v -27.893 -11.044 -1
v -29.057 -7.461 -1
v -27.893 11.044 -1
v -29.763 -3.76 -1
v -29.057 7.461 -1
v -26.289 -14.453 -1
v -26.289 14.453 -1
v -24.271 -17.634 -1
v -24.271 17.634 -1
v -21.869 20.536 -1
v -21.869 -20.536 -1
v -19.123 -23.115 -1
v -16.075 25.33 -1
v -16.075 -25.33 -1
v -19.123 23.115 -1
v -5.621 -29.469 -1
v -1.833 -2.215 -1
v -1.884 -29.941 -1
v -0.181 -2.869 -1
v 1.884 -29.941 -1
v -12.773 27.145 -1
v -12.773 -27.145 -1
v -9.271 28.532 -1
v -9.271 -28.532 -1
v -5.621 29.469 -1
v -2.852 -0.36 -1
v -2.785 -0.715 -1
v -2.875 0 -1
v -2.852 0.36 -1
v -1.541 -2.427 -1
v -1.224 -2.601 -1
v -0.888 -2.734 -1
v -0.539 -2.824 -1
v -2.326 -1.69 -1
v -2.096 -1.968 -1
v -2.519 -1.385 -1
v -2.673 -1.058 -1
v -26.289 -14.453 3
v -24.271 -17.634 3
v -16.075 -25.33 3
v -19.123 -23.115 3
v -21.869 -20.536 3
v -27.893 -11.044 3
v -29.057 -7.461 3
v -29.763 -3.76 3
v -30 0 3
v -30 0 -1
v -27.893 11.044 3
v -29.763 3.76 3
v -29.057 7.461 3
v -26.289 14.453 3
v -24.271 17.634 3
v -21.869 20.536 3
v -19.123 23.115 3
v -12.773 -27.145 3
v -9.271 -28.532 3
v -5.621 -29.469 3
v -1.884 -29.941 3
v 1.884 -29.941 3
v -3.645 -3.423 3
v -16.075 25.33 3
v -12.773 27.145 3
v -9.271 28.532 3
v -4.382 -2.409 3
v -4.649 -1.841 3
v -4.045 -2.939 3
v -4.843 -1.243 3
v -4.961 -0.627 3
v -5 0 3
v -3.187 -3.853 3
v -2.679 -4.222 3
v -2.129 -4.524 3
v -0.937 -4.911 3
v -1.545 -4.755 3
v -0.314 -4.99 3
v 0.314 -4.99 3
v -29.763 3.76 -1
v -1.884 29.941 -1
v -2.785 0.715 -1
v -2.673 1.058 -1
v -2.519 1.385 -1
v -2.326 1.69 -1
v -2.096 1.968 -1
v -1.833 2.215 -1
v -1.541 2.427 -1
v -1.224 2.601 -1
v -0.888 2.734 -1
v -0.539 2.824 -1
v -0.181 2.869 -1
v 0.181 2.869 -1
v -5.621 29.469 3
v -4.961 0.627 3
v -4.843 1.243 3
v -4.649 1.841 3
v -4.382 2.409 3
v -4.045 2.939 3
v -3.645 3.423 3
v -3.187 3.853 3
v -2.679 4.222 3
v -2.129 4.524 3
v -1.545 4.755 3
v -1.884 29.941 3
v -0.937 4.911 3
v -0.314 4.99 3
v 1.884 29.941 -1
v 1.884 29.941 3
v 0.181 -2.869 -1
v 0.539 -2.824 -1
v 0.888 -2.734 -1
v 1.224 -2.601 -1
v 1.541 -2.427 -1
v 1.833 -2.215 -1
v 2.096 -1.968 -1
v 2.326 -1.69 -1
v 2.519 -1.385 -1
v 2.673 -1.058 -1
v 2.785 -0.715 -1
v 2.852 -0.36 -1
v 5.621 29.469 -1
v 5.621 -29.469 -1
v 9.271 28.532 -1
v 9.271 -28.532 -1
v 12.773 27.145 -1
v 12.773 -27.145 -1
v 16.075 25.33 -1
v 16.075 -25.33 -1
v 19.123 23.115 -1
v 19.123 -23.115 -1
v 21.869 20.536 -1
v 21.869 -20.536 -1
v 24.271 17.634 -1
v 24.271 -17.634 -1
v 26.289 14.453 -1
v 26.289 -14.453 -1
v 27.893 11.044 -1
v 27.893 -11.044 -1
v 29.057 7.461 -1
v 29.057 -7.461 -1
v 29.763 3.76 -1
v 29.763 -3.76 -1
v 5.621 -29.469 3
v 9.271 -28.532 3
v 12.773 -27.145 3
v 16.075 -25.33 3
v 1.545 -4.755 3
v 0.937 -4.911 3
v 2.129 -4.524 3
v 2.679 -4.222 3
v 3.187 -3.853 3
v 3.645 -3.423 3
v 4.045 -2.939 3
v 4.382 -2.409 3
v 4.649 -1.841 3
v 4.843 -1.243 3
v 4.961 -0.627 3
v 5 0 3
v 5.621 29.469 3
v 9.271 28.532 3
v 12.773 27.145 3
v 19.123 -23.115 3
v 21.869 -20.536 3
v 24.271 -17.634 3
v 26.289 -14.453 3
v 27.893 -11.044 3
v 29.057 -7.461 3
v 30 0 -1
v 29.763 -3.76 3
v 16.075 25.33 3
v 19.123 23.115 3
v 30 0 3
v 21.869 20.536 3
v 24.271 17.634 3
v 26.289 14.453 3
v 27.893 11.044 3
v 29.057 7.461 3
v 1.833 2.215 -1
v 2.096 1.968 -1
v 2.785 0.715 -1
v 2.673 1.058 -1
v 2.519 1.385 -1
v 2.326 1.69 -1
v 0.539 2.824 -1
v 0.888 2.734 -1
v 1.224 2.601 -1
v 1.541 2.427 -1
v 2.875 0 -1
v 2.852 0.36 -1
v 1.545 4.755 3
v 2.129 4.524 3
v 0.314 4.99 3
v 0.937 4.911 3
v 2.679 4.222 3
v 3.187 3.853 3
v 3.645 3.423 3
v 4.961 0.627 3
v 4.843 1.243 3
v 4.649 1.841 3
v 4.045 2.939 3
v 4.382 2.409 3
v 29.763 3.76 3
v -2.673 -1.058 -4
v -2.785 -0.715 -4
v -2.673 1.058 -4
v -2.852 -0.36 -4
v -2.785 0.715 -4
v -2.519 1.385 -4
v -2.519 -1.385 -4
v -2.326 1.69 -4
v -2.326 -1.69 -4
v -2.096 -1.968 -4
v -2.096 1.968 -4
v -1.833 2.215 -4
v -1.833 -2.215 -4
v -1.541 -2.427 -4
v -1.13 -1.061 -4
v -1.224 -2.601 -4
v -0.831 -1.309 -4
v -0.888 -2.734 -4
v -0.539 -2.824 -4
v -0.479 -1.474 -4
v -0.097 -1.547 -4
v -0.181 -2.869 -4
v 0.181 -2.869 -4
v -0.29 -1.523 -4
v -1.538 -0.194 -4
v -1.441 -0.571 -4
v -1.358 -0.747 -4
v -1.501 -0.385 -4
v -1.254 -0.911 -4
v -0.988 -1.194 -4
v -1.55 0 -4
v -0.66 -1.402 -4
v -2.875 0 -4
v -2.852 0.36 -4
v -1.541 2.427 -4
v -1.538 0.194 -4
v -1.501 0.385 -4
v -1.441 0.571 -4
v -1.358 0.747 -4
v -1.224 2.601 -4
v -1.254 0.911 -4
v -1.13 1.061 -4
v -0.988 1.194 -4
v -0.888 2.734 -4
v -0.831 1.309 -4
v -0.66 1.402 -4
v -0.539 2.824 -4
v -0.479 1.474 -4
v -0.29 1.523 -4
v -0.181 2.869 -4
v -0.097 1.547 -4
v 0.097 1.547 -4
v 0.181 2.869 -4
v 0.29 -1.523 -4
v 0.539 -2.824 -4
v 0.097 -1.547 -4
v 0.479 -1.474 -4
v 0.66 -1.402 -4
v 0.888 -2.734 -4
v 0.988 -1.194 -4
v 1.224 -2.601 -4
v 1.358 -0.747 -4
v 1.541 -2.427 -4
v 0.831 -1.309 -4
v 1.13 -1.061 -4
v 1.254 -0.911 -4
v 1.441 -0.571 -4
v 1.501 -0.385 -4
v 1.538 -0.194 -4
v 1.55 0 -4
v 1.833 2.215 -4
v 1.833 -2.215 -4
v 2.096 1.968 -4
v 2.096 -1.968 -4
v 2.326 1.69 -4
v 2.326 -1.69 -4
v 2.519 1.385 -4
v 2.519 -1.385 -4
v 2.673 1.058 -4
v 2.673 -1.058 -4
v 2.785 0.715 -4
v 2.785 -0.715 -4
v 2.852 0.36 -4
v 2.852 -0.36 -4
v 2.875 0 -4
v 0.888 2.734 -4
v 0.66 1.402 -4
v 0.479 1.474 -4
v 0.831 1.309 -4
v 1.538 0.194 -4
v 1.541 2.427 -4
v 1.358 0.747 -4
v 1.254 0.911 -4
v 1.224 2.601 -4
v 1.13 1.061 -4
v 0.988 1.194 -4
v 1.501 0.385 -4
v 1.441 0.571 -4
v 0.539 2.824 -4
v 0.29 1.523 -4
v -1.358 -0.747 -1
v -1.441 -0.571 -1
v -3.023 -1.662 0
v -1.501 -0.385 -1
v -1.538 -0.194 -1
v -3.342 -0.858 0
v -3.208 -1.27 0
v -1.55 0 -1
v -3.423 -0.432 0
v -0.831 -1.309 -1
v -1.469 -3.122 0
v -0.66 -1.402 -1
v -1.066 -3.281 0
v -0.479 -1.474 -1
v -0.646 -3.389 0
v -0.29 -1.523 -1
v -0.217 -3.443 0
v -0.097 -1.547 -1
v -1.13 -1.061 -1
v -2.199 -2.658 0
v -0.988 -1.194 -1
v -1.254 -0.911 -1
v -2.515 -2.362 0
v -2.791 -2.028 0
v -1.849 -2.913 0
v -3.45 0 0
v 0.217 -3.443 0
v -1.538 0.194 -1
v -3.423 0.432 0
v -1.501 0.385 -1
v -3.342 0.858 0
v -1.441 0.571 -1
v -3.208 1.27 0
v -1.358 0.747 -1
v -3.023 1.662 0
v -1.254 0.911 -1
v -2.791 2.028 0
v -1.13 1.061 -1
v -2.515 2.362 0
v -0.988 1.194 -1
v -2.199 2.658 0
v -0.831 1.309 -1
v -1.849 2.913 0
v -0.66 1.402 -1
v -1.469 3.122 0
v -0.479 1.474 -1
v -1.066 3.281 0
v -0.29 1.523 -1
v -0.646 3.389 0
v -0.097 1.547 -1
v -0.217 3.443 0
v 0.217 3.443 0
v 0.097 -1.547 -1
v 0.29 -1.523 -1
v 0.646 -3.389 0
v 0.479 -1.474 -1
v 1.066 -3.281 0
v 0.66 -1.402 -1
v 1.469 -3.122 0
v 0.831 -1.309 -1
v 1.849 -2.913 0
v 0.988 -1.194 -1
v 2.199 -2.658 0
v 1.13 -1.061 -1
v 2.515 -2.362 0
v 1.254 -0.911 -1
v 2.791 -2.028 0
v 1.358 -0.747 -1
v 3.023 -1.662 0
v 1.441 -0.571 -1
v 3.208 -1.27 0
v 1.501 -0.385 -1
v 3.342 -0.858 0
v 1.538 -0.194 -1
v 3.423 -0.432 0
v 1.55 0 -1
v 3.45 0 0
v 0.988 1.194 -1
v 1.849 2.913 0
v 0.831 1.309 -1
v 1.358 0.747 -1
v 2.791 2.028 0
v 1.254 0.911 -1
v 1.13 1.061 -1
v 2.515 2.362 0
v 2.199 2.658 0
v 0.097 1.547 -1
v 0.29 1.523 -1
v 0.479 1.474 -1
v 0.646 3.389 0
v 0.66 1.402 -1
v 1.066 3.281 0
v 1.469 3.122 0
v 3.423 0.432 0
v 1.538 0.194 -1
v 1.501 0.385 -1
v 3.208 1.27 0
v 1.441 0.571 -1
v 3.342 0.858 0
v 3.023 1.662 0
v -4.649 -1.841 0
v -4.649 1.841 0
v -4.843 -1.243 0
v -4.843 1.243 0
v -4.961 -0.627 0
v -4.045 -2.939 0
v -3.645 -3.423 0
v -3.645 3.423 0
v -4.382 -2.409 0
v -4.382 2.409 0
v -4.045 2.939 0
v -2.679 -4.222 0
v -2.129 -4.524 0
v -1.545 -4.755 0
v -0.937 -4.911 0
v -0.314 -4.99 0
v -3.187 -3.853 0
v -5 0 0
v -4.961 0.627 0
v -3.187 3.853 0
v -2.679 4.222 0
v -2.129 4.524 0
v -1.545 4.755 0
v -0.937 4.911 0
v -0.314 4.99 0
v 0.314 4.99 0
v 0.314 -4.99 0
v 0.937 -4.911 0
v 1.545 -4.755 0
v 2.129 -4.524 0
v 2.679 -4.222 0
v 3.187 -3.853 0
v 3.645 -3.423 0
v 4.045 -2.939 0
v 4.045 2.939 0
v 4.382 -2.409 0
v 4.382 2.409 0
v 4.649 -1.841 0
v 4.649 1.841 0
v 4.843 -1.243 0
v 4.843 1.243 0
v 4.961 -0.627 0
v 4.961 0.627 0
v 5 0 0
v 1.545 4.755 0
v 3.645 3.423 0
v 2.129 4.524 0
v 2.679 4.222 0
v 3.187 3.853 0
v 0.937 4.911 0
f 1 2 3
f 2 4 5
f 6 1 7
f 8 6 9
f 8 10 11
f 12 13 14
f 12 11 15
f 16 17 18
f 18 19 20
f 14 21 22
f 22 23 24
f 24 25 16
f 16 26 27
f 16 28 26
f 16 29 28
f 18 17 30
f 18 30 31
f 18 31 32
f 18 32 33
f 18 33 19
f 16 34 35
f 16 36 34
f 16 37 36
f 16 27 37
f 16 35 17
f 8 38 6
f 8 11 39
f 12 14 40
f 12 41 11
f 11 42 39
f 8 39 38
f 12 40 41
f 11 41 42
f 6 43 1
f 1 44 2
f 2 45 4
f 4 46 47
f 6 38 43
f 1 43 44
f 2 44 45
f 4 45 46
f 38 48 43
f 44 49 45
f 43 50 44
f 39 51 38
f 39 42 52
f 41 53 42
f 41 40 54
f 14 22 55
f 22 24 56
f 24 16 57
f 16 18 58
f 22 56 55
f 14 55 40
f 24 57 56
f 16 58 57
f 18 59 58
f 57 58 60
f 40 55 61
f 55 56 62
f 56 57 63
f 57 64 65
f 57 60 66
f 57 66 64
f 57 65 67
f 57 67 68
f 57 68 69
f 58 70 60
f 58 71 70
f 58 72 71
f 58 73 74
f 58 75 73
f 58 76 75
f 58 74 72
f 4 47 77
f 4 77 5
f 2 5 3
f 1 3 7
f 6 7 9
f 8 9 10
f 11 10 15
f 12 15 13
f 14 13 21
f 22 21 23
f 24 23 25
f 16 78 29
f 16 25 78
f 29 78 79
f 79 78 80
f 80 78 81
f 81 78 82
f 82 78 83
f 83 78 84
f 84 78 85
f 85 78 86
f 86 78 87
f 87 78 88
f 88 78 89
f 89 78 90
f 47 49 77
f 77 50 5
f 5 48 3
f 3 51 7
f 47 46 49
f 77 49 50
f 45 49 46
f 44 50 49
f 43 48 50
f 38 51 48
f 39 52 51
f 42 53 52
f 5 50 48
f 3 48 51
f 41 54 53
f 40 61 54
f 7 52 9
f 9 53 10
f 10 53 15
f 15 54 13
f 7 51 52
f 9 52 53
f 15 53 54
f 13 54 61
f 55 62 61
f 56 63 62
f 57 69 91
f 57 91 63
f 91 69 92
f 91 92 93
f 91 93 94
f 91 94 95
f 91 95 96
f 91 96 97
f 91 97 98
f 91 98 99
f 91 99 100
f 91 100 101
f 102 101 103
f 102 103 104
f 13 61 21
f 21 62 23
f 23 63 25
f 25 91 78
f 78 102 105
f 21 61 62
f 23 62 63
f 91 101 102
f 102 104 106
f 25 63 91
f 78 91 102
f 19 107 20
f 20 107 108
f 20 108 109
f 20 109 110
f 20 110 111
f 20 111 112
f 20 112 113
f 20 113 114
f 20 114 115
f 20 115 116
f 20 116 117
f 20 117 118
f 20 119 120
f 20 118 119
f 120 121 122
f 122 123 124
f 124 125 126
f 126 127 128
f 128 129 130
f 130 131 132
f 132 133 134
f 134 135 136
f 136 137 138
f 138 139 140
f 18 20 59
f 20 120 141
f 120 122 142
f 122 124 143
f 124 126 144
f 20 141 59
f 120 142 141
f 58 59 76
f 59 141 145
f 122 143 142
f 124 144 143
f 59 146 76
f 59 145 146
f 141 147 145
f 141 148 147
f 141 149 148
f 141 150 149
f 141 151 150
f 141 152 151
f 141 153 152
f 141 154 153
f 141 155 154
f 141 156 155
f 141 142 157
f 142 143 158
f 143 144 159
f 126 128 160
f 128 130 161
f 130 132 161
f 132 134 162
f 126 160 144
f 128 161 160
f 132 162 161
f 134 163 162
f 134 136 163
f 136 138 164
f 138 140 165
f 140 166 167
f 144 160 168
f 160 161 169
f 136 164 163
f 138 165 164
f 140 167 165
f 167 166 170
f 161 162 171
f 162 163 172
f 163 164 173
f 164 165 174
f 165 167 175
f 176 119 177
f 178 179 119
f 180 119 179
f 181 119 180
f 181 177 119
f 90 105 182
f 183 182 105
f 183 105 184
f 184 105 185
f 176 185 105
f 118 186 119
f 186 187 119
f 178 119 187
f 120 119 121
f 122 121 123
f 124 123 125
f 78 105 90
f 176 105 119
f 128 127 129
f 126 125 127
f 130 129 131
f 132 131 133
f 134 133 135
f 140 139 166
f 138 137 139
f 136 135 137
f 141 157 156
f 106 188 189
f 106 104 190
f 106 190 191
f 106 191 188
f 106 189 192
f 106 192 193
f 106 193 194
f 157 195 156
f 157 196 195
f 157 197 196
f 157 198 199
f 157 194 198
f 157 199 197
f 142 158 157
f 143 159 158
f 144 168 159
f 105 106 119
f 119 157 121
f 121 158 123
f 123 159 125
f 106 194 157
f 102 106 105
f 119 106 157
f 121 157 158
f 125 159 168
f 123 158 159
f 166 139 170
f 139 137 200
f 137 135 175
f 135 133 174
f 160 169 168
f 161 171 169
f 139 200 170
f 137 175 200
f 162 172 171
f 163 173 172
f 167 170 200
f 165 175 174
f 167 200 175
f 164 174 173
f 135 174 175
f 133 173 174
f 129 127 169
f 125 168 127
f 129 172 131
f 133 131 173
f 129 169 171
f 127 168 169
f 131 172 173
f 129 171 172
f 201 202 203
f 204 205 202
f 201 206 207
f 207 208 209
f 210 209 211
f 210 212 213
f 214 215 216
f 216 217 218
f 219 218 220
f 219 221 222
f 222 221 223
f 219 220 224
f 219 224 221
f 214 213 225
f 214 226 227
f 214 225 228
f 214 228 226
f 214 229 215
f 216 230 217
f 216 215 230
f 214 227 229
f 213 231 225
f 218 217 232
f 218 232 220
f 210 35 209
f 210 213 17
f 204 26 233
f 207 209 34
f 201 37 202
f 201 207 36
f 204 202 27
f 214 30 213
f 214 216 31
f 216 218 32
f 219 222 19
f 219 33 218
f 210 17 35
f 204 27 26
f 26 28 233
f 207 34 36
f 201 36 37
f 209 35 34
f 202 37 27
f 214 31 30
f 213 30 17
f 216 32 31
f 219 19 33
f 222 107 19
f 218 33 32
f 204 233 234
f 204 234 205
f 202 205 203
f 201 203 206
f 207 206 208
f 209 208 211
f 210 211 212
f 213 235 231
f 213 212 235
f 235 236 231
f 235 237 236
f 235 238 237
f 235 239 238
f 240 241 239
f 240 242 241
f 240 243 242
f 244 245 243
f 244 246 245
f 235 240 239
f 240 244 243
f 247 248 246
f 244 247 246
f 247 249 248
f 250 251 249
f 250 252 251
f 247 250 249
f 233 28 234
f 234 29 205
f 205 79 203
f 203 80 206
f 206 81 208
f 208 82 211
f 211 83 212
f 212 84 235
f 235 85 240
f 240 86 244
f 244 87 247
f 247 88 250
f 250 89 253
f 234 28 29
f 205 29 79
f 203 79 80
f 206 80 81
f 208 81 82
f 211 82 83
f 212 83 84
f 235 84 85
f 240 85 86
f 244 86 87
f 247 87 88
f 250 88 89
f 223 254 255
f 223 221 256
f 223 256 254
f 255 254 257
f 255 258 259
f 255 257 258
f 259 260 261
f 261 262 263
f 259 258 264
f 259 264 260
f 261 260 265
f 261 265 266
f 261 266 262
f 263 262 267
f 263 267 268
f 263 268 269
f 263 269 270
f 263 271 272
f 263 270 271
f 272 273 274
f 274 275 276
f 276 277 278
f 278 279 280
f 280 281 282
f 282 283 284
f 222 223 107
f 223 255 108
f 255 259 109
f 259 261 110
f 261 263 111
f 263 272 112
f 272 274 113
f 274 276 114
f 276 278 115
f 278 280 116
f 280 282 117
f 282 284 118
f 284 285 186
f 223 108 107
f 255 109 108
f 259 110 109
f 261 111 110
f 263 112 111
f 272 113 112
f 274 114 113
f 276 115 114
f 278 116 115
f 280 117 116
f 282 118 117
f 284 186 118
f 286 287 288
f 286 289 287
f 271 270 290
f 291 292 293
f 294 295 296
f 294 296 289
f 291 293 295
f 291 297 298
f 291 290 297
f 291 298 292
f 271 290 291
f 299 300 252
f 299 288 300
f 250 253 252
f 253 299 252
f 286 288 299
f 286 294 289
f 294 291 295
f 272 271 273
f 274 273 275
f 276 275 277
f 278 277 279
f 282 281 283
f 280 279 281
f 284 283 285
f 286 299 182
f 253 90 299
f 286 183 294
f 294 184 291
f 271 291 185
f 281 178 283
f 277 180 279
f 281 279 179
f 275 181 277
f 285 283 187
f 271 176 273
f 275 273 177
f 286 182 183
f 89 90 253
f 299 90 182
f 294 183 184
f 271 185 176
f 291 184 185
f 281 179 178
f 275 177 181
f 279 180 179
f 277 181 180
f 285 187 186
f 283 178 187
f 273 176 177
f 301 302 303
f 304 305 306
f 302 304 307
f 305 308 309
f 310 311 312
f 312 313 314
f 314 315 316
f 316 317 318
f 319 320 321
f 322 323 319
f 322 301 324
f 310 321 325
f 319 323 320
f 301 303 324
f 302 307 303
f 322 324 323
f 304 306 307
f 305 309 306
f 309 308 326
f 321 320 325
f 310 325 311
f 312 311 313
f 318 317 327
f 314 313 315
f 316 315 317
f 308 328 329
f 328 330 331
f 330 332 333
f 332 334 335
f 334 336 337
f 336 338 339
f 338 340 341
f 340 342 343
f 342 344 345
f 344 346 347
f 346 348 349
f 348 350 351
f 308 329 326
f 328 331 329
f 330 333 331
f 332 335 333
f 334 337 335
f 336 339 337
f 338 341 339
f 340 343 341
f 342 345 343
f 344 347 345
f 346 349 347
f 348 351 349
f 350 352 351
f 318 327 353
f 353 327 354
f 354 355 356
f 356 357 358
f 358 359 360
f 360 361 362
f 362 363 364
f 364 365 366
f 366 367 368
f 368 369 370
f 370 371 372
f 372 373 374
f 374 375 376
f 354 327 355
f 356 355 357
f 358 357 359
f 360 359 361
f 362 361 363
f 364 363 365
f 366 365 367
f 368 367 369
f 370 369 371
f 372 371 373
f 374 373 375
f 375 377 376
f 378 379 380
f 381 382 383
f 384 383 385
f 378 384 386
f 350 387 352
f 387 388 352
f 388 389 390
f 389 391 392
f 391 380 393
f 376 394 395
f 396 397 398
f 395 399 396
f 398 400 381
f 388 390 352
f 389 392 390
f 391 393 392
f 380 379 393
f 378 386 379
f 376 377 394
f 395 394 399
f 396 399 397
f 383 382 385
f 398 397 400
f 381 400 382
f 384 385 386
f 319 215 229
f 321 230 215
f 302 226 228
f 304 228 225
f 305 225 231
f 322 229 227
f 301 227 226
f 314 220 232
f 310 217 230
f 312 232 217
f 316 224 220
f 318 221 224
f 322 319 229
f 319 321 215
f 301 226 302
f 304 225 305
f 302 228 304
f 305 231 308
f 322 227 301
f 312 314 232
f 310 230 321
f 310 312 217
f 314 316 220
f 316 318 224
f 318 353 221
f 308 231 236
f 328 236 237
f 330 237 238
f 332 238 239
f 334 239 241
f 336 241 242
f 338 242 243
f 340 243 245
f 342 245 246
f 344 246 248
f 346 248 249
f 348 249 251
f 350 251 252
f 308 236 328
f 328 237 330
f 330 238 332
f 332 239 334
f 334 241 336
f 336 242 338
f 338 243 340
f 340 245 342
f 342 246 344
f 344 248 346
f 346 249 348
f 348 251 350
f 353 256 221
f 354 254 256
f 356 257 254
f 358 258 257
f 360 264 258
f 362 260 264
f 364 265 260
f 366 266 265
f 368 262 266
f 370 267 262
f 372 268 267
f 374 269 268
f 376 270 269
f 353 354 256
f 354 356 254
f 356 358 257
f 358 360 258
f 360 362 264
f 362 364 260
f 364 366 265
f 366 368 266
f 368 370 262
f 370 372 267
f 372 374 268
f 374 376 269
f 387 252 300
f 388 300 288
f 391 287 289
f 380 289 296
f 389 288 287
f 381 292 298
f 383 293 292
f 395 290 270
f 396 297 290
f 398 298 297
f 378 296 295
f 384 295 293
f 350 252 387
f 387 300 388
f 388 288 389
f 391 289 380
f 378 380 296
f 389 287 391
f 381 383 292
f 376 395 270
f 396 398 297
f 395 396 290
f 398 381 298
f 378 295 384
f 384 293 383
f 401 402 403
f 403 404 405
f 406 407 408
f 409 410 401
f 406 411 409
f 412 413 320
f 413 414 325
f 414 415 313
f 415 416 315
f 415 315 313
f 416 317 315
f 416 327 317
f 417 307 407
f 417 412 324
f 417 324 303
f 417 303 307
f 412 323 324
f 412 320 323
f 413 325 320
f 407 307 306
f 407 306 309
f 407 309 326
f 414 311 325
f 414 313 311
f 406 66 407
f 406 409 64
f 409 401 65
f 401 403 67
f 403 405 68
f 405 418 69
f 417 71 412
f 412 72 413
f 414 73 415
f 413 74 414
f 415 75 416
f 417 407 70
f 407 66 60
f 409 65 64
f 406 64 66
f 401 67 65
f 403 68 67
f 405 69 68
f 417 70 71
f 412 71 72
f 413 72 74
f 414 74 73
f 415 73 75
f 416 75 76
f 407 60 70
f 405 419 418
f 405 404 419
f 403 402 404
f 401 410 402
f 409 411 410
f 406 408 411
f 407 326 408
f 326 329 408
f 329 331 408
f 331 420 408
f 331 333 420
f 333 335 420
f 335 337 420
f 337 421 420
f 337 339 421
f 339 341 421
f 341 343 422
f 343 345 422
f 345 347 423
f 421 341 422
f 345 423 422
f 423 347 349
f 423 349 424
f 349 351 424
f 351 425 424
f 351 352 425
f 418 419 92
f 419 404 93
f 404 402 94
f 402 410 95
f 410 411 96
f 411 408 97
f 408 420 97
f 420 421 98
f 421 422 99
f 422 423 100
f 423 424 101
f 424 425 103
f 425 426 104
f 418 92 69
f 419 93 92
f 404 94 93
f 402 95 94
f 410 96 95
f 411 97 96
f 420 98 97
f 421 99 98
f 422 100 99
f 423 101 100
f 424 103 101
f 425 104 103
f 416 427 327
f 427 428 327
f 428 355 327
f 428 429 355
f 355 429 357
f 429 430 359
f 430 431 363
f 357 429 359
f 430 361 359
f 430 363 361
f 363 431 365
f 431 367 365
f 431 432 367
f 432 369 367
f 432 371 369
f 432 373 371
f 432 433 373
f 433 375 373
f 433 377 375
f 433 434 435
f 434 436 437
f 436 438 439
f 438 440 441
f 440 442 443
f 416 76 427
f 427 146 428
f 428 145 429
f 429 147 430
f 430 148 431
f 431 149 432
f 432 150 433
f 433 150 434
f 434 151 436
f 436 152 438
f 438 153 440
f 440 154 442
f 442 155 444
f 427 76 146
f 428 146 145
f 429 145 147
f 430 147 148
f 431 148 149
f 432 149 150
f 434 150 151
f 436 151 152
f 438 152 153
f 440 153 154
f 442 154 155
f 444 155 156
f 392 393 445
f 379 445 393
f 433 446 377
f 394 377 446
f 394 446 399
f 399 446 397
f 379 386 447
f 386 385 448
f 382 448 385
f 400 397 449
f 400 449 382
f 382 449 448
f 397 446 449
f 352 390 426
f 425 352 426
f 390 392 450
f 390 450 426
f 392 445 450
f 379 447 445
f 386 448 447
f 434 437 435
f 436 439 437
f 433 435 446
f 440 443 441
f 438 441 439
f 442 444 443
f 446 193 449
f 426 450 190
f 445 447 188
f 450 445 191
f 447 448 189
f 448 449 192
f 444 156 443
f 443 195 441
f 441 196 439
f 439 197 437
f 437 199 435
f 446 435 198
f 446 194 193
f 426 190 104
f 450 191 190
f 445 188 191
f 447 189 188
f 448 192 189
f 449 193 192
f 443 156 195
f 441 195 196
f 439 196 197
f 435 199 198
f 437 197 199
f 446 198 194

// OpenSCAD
$fn = 50;


difference() {
	union() {
		translate(v = [0, 0, -1.0000000000]) {
			cylinder(h = 4.0000000000, r = 30.0000000000);
		}
		#translate(v = [0, 0, -4.0000000000]) {
			cylinder(h = 4.0000000000, r = 2.8750000000);
		}
	}
	union() {
		translate(v = [0, 0, 0]) {
			rotate(a = [0, 0, 0]) {
				difference() {
					union() {
						translate(v = [0, 0, -4.0000000000]) {
							cylinder(h = 4.0000000000, r = 1.2500000000);
						}
						translate(v = [0, 0, -1.0000000000]) {
							cylinder(h = 1.0000000000, r1 = 1.5500000000, r2 = 3.4500000000);
						}
						translate(v = [0, 0, -4.0000000000]) {
							cylinder(h = 4.0000000000, r = 1.5500000000);
						}
						translate(v = [0, 0, -4.0000000000]) {
							cylinder(h = 4.0000000000, r = 1.2500000000);
						}
					}
					union();
				}
			}
		}
		#cylinder(h = 3, r = 5.0000000000);
	}
}
